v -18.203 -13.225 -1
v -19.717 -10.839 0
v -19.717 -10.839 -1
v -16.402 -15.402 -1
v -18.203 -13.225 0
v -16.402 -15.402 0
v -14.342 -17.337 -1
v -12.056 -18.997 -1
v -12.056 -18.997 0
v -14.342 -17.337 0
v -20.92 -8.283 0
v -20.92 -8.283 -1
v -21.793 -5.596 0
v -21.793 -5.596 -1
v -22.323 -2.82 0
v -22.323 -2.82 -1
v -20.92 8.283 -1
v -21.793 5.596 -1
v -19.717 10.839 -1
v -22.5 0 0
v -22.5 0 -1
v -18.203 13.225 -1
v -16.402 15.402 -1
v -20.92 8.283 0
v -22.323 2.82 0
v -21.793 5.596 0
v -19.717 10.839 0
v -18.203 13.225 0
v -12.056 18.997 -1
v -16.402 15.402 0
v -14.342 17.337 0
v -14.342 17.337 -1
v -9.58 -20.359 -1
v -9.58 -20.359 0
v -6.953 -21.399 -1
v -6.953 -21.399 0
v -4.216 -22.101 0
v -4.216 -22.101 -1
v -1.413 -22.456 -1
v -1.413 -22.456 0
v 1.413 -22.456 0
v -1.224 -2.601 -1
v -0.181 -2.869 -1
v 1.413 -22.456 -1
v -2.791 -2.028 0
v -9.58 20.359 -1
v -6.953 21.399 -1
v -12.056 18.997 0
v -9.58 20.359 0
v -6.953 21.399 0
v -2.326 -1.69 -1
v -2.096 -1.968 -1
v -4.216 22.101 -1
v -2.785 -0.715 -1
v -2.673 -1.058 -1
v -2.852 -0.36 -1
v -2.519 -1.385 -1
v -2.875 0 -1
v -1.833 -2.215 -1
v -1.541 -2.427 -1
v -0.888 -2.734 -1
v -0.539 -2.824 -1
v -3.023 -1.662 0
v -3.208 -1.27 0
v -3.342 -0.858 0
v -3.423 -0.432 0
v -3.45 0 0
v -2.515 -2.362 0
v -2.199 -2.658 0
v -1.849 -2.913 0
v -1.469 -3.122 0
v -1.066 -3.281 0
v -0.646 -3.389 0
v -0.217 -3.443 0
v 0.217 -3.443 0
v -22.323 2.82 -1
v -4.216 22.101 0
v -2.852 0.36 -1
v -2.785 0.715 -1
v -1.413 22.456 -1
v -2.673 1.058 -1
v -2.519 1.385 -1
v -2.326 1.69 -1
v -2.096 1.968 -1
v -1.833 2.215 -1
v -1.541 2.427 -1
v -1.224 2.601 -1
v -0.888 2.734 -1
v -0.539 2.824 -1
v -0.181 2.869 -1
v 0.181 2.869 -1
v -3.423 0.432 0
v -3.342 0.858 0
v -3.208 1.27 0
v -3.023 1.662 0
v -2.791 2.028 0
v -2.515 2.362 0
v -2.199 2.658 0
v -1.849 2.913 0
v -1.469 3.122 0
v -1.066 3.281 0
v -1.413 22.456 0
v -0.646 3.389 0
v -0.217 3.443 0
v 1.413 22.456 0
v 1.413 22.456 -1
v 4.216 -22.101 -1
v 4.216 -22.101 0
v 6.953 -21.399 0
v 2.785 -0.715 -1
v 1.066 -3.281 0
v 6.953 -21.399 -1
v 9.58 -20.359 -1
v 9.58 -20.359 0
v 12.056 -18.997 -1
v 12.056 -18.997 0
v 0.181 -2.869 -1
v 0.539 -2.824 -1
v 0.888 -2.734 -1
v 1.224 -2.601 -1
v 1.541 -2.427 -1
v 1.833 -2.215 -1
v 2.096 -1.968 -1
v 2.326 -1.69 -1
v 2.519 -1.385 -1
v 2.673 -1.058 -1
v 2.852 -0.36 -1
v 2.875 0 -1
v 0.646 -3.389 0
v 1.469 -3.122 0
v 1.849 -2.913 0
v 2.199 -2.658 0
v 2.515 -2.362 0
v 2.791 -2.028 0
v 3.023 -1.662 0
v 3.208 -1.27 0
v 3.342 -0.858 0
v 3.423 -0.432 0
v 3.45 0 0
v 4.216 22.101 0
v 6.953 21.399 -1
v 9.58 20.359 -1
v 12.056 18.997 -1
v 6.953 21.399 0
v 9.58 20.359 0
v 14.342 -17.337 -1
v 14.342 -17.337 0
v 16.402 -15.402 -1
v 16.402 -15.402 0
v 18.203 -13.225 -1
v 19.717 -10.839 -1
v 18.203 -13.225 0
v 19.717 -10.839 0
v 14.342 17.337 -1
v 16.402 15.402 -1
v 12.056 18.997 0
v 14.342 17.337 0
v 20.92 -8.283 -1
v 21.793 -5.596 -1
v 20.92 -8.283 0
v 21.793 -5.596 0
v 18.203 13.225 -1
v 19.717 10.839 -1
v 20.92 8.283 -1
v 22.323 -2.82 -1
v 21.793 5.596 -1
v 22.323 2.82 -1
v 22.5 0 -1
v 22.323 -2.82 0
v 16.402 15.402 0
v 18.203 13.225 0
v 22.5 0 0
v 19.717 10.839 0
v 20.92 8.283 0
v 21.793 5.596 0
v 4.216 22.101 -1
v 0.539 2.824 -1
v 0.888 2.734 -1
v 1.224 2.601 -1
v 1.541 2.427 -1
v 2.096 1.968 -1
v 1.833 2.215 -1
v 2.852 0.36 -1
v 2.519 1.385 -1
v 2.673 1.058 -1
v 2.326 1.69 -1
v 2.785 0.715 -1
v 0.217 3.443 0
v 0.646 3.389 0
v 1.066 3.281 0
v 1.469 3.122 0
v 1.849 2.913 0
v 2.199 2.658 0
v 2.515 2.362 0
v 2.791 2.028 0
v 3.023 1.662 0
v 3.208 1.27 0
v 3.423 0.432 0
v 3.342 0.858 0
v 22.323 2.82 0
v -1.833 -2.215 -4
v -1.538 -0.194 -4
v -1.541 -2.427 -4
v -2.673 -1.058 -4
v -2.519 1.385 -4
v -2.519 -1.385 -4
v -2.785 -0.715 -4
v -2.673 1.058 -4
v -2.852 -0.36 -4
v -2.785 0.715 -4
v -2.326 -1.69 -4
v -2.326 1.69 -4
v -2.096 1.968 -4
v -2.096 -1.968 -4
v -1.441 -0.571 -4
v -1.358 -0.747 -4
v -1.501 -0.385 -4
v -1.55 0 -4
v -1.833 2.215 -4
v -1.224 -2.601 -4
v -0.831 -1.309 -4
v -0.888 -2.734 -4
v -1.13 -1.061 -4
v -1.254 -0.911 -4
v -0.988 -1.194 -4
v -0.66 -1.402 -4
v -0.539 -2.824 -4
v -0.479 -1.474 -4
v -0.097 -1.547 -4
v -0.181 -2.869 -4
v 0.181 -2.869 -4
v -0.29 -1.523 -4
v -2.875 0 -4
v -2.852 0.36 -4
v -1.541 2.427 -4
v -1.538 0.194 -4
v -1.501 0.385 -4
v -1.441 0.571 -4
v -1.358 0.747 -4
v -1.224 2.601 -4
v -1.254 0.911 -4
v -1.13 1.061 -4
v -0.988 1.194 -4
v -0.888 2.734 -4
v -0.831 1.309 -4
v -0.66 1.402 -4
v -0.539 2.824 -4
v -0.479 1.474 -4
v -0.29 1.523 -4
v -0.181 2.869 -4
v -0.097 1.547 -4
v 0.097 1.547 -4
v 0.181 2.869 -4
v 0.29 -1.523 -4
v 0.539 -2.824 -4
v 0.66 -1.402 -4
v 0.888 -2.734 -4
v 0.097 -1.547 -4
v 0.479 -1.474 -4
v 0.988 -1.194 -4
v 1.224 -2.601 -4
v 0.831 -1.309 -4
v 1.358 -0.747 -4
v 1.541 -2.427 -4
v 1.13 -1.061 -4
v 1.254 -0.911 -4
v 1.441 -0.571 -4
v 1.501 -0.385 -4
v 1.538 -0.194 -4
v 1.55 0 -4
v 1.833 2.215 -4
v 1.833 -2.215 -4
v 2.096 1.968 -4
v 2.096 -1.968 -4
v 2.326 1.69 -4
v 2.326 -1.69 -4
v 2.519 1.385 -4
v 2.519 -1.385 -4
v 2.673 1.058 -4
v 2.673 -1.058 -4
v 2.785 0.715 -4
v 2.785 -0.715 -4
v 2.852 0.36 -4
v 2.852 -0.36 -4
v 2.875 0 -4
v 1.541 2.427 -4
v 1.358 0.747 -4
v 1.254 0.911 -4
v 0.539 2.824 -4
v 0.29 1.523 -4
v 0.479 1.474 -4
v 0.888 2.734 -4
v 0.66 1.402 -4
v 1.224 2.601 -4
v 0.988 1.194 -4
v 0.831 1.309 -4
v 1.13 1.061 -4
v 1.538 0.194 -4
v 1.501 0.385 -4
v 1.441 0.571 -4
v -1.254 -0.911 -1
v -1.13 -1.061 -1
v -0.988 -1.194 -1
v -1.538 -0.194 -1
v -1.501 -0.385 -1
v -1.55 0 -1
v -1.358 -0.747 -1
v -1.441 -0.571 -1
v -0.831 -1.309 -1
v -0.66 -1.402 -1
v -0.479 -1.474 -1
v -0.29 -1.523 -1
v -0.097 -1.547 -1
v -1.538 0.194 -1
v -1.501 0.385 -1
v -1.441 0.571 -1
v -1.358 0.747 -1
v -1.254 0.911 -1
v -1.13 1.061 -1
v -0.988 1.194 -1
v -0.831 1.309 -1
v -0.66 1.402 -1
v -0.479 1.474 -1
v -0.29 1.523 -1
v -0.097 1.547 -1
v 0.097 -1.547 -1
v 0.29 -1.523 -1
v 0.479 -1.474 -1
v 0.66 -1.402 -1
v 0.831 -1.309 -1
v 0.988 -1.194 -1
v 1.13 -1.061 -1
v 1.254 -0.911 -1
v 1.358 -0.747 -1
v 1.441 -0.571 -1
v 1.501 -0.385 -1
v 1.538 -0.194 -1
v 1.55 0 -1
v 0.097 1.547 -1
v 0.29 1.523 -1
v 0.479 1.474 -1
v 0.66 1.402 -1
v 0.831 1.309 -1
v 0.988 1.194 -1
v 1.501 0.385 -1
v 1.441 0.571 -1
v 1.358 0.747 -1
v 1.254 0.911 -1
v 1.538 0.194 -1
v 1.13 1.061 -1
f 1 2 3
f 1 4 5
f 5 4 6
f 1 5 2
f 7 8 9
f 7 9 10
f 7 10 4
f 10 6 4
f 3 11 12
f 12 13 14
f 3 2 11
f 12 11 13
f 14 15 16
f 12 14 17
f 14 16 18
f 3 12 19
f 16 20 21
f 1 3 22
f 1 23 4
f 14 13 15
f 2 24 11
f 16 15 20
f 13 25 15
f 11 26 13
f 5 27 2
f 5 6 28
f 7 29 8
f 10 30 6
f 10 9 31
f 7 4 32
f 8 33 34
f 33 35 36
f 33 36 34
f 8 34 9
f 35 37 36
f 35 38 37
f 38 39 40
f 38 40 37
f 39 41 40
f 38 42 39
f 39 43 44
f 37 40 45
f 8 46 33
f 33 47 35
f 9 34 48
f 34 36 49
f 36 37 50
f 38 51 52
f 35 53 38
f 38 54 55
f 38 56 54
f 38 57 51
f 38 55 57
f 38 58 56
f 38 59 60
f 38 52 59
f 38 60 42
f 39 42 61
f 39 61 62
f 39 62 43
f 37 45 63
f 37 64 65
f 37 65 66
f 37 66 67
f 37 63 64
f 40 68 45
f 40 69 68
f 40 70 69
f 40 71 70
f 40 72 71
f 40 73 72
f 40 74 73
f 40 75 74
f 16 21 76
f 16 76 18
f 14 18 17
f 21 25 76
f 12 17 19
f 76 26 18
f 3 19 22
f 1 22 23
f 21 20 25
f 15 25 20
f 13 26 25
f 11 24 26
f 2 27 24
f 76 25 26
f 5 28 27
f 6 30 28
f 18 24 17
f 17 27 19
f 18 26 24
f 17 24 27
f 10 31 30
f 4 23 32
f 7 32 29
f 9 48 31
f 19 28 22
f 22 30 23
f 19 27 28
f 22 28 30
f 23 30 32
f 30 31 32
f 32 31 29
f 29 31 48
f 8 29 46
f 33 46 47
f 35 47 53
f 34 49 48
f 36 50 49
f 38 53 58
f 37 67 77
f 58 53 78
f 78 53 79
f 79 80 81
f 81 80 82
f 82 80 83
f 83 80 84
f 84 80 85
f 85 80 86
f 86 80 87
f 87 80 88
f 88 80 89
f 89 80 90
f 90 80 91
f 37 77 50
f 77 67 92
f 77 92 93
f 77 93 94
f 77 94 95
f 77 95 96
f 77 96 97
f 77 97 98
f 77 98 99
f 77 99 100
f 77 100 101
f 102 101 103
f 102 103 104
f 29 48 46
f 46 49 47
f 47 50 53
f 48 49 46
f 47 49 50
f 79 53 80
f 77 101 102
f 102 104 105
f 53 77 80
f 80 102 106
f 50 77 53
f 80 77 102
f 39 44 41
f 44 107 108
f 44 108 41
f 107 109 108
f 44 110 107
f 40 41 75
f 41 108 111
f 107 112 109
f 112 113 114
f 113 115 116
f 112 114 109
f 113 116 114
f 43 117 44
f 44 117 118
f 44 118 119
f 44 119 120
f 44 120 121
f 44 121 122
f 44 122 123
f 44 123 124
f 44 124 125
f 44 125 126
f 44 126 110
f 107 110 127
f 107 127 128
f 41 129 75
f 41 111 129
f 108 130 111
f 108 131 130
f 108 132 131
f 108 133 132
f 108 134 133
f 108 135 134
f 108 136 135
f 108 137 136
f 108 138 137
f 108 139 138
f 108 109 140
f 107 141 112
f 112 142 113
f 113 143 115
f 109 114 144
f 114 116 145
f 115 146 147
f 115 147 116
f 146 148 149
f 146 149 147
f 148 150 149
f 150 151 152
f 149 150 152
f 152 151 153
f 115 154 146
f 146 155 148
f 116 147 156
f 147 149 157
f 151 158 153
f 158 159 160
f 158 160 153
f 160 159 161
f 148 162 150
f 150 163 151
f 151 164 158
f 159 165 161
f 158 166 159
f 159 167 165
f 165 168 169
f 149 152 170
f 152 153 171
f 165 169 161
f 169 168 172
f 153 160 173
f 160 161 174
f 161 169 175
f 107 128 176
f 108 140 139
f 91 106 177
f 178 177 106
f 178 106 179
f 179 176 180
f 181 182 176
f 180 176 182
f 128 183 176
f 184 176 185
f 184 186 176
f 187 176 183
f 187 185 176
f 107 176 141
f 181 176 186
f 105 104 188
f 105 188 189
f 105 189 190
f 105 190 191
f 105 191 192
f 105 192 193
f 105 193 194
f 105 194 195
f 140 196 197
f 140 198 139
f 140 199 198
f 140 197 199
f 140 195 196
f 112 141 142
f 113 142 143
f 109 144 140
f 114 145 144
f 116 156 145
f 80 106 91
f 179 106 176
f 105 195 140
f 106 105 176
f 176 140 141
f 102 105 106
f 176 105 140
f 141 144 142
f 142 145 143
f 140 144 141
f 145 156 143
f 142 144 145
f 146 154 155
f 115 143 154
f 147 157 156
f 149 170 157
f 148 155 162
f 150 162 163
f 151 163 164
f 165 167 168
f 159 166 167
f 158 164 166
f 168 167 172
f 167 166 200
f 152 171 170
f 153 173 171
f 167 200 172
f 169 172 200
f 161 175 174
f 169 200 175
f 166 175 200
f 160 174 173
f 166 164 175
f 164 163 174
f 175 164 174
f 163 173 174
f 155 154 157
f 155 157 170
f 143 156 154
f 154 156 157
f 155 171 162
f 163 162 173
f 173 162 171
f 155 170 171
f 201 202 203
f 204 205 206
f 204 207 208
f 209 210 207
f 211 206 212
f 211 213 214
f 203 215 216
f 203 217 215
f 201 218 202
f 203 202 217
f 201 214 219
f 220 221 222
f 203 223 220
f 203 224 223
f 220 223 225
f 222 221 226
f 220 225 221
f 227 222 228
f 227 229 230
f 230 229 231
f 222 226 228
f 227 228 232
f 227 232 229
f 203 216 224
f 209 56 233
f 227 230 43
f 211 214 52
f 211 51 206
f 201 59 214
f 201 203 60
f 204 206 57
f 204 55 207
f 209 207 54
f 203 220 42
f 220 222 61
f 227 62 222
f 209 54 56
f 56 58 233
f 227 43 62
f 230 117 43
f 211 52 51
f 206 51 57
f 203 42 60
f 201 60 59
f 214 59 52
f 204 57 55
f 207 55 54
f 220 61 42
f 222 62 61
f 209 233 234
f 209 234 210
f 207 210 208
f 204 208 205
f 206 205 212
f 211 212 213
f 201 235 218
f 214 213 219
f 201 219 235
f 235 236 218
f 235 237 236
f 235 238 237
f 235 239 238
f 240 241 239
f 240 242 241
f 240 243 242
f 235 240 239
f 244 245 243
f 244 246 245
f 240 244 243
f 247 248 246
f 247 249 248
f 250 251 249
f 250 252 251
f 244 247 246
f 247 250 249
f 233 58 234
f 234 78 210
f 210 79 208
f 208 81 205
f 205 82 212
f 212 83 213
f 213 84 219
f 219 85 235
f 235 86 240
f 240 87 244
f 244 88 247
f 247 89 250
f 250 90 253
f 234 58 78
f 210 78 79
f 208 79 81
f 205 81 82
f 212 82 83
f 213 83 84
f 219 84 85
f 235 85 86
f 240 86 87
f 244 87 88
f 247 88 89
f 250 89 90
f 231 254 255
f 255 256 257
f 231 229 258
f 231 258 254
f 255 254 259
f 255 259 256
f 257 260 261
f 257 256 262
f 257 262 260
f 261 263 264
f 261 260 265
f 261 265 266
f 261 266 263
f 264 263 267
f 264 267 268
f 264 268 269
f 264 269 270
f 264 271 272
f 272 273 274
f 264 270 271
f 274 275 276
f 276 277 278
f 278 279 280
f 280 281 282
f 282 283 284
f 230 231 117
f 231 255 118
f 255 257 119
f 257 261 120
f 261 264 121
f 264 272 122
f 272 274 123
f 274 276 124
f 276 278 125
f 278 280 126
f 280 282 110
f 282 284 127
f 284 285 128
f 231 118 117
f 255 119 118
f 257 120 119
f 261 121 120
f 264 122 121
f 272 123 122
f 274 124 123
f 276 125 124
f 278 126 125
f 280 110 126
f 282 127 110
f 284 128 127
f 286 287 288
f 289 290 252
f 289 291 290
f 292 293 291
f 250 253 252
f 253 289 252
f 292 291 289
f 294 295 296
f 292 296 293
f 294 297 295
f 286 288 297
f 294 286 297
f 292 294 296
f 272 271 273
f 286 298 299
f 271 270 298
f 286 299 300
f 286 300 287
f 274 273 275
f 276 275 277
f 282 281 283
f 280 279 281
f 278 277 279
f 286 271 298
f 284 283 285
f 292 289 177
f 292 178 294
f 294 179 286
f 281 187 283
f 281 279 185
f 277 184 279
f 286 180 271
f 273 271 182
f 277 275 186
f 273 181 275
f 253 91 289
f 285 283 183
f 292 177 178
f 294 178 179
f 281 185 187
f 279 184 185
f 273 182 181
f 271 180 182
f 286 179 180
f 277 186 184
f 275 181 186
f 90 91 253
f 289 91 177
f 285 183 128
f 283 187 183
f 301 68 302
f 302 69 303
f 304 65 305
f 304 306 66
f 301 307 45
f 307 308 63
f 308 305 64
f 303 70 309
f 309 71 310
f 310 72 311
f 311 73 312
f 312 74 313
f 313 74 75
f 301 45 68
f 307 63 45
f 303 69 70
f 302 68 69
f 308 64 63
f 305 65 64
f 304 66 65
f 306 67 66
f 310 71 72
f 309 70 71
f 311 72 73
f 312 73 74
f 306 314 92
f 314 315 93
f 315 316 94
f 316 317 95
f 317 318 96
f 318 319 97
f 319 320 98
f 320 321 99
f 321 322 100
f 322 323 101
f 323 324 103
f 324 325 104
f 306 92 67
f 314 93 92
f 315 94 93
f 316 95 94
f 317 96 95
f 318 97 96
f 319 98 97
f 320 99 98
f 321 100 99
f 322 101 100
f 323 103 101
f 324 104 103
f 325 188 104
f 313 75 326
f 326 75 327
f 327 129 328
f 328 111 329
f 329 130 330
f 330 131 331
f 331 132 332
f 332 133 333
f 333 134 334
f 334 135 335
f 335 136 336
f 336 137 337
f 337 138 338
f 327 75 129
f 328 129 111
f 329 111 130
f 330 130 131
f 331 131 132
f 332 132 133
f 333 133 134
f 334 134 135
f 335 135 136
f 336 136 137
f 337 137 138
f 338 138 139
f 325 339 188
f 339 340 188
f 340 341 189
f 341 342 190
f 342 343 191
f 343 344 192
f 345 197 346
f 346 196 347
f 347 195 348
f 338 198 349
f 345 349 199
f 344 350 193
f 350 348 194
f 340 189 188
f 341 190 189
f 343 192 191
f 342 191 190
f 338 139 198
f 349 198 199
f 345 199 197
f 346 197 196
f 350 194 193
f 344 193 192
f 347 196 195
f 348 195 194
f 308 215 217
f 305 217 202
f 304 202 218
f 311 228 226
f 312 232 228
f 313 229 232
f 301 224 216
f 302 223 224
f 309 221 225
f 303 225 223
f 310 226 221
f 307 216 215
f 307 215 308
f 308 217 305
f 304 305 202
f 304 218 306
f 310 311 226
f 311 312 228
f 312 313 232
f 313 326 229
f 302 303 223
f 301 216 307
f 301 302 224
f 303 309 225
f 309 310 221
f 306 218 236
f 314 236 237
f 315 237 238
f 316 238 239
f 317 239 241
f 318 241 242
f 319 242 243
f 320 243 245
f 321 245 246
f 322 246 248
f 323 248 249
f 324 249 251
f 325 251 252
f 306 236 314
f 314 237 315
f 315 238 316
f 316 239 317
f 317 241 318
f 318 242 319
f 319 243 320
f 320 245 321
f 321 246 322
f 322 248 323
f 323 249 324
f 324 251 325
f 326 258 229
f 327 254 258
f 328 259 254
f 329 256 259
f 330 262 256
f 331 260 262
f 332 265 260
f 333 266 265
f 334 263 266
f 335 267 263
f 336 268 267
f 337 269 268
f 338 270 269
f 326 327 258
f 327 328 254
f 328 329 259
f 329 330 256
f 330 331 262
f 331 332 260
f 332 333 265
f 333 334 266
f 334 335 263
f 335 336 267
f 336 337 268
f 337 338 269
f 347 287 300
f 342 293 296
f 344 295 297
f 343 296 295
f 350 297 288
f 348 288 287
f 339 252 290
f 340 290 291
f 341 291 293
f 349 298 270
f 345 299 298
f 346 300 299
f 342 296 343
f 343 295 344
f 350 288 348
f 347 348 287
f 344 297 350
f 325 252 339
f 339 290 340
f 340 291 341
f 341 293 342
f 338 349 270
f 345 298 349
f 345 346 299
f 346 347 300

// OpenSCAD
$fn = 50;

difference() {
	union() {
		translate(v = [0, 0, -1.0]) {
			cylinder(h = 1.0, r = 22.5);
		}
		#translate(v = [0, 0, -4.0]) {
			cylinder(h = 4.0, r = 2.875);
		}
	}
	union() {
		translate(v = [0, 0, 0]) {
			rotate(a = [0, 0, 0]) {
				difference() {
					union() {
						translate(v = [0, 0, -4.0]) {
							cylinder(h = 4.0, r = 1.25);
						}
						translate(v = [0, 0, -1.0]) {
							cylinder(h = 1.0, r1 = 1.55, r2 = 3.45);
						}
						translate(v = [0, 0, -4.0]) {
							cylinder(h = 4.0, r = 1.55);
						}
						translate(v = [0, 0, -4.0]) {
							cylinder(h = 4.0, r = 1.25);
						}
					}
					union();
				}
			}
		}
	}
}
